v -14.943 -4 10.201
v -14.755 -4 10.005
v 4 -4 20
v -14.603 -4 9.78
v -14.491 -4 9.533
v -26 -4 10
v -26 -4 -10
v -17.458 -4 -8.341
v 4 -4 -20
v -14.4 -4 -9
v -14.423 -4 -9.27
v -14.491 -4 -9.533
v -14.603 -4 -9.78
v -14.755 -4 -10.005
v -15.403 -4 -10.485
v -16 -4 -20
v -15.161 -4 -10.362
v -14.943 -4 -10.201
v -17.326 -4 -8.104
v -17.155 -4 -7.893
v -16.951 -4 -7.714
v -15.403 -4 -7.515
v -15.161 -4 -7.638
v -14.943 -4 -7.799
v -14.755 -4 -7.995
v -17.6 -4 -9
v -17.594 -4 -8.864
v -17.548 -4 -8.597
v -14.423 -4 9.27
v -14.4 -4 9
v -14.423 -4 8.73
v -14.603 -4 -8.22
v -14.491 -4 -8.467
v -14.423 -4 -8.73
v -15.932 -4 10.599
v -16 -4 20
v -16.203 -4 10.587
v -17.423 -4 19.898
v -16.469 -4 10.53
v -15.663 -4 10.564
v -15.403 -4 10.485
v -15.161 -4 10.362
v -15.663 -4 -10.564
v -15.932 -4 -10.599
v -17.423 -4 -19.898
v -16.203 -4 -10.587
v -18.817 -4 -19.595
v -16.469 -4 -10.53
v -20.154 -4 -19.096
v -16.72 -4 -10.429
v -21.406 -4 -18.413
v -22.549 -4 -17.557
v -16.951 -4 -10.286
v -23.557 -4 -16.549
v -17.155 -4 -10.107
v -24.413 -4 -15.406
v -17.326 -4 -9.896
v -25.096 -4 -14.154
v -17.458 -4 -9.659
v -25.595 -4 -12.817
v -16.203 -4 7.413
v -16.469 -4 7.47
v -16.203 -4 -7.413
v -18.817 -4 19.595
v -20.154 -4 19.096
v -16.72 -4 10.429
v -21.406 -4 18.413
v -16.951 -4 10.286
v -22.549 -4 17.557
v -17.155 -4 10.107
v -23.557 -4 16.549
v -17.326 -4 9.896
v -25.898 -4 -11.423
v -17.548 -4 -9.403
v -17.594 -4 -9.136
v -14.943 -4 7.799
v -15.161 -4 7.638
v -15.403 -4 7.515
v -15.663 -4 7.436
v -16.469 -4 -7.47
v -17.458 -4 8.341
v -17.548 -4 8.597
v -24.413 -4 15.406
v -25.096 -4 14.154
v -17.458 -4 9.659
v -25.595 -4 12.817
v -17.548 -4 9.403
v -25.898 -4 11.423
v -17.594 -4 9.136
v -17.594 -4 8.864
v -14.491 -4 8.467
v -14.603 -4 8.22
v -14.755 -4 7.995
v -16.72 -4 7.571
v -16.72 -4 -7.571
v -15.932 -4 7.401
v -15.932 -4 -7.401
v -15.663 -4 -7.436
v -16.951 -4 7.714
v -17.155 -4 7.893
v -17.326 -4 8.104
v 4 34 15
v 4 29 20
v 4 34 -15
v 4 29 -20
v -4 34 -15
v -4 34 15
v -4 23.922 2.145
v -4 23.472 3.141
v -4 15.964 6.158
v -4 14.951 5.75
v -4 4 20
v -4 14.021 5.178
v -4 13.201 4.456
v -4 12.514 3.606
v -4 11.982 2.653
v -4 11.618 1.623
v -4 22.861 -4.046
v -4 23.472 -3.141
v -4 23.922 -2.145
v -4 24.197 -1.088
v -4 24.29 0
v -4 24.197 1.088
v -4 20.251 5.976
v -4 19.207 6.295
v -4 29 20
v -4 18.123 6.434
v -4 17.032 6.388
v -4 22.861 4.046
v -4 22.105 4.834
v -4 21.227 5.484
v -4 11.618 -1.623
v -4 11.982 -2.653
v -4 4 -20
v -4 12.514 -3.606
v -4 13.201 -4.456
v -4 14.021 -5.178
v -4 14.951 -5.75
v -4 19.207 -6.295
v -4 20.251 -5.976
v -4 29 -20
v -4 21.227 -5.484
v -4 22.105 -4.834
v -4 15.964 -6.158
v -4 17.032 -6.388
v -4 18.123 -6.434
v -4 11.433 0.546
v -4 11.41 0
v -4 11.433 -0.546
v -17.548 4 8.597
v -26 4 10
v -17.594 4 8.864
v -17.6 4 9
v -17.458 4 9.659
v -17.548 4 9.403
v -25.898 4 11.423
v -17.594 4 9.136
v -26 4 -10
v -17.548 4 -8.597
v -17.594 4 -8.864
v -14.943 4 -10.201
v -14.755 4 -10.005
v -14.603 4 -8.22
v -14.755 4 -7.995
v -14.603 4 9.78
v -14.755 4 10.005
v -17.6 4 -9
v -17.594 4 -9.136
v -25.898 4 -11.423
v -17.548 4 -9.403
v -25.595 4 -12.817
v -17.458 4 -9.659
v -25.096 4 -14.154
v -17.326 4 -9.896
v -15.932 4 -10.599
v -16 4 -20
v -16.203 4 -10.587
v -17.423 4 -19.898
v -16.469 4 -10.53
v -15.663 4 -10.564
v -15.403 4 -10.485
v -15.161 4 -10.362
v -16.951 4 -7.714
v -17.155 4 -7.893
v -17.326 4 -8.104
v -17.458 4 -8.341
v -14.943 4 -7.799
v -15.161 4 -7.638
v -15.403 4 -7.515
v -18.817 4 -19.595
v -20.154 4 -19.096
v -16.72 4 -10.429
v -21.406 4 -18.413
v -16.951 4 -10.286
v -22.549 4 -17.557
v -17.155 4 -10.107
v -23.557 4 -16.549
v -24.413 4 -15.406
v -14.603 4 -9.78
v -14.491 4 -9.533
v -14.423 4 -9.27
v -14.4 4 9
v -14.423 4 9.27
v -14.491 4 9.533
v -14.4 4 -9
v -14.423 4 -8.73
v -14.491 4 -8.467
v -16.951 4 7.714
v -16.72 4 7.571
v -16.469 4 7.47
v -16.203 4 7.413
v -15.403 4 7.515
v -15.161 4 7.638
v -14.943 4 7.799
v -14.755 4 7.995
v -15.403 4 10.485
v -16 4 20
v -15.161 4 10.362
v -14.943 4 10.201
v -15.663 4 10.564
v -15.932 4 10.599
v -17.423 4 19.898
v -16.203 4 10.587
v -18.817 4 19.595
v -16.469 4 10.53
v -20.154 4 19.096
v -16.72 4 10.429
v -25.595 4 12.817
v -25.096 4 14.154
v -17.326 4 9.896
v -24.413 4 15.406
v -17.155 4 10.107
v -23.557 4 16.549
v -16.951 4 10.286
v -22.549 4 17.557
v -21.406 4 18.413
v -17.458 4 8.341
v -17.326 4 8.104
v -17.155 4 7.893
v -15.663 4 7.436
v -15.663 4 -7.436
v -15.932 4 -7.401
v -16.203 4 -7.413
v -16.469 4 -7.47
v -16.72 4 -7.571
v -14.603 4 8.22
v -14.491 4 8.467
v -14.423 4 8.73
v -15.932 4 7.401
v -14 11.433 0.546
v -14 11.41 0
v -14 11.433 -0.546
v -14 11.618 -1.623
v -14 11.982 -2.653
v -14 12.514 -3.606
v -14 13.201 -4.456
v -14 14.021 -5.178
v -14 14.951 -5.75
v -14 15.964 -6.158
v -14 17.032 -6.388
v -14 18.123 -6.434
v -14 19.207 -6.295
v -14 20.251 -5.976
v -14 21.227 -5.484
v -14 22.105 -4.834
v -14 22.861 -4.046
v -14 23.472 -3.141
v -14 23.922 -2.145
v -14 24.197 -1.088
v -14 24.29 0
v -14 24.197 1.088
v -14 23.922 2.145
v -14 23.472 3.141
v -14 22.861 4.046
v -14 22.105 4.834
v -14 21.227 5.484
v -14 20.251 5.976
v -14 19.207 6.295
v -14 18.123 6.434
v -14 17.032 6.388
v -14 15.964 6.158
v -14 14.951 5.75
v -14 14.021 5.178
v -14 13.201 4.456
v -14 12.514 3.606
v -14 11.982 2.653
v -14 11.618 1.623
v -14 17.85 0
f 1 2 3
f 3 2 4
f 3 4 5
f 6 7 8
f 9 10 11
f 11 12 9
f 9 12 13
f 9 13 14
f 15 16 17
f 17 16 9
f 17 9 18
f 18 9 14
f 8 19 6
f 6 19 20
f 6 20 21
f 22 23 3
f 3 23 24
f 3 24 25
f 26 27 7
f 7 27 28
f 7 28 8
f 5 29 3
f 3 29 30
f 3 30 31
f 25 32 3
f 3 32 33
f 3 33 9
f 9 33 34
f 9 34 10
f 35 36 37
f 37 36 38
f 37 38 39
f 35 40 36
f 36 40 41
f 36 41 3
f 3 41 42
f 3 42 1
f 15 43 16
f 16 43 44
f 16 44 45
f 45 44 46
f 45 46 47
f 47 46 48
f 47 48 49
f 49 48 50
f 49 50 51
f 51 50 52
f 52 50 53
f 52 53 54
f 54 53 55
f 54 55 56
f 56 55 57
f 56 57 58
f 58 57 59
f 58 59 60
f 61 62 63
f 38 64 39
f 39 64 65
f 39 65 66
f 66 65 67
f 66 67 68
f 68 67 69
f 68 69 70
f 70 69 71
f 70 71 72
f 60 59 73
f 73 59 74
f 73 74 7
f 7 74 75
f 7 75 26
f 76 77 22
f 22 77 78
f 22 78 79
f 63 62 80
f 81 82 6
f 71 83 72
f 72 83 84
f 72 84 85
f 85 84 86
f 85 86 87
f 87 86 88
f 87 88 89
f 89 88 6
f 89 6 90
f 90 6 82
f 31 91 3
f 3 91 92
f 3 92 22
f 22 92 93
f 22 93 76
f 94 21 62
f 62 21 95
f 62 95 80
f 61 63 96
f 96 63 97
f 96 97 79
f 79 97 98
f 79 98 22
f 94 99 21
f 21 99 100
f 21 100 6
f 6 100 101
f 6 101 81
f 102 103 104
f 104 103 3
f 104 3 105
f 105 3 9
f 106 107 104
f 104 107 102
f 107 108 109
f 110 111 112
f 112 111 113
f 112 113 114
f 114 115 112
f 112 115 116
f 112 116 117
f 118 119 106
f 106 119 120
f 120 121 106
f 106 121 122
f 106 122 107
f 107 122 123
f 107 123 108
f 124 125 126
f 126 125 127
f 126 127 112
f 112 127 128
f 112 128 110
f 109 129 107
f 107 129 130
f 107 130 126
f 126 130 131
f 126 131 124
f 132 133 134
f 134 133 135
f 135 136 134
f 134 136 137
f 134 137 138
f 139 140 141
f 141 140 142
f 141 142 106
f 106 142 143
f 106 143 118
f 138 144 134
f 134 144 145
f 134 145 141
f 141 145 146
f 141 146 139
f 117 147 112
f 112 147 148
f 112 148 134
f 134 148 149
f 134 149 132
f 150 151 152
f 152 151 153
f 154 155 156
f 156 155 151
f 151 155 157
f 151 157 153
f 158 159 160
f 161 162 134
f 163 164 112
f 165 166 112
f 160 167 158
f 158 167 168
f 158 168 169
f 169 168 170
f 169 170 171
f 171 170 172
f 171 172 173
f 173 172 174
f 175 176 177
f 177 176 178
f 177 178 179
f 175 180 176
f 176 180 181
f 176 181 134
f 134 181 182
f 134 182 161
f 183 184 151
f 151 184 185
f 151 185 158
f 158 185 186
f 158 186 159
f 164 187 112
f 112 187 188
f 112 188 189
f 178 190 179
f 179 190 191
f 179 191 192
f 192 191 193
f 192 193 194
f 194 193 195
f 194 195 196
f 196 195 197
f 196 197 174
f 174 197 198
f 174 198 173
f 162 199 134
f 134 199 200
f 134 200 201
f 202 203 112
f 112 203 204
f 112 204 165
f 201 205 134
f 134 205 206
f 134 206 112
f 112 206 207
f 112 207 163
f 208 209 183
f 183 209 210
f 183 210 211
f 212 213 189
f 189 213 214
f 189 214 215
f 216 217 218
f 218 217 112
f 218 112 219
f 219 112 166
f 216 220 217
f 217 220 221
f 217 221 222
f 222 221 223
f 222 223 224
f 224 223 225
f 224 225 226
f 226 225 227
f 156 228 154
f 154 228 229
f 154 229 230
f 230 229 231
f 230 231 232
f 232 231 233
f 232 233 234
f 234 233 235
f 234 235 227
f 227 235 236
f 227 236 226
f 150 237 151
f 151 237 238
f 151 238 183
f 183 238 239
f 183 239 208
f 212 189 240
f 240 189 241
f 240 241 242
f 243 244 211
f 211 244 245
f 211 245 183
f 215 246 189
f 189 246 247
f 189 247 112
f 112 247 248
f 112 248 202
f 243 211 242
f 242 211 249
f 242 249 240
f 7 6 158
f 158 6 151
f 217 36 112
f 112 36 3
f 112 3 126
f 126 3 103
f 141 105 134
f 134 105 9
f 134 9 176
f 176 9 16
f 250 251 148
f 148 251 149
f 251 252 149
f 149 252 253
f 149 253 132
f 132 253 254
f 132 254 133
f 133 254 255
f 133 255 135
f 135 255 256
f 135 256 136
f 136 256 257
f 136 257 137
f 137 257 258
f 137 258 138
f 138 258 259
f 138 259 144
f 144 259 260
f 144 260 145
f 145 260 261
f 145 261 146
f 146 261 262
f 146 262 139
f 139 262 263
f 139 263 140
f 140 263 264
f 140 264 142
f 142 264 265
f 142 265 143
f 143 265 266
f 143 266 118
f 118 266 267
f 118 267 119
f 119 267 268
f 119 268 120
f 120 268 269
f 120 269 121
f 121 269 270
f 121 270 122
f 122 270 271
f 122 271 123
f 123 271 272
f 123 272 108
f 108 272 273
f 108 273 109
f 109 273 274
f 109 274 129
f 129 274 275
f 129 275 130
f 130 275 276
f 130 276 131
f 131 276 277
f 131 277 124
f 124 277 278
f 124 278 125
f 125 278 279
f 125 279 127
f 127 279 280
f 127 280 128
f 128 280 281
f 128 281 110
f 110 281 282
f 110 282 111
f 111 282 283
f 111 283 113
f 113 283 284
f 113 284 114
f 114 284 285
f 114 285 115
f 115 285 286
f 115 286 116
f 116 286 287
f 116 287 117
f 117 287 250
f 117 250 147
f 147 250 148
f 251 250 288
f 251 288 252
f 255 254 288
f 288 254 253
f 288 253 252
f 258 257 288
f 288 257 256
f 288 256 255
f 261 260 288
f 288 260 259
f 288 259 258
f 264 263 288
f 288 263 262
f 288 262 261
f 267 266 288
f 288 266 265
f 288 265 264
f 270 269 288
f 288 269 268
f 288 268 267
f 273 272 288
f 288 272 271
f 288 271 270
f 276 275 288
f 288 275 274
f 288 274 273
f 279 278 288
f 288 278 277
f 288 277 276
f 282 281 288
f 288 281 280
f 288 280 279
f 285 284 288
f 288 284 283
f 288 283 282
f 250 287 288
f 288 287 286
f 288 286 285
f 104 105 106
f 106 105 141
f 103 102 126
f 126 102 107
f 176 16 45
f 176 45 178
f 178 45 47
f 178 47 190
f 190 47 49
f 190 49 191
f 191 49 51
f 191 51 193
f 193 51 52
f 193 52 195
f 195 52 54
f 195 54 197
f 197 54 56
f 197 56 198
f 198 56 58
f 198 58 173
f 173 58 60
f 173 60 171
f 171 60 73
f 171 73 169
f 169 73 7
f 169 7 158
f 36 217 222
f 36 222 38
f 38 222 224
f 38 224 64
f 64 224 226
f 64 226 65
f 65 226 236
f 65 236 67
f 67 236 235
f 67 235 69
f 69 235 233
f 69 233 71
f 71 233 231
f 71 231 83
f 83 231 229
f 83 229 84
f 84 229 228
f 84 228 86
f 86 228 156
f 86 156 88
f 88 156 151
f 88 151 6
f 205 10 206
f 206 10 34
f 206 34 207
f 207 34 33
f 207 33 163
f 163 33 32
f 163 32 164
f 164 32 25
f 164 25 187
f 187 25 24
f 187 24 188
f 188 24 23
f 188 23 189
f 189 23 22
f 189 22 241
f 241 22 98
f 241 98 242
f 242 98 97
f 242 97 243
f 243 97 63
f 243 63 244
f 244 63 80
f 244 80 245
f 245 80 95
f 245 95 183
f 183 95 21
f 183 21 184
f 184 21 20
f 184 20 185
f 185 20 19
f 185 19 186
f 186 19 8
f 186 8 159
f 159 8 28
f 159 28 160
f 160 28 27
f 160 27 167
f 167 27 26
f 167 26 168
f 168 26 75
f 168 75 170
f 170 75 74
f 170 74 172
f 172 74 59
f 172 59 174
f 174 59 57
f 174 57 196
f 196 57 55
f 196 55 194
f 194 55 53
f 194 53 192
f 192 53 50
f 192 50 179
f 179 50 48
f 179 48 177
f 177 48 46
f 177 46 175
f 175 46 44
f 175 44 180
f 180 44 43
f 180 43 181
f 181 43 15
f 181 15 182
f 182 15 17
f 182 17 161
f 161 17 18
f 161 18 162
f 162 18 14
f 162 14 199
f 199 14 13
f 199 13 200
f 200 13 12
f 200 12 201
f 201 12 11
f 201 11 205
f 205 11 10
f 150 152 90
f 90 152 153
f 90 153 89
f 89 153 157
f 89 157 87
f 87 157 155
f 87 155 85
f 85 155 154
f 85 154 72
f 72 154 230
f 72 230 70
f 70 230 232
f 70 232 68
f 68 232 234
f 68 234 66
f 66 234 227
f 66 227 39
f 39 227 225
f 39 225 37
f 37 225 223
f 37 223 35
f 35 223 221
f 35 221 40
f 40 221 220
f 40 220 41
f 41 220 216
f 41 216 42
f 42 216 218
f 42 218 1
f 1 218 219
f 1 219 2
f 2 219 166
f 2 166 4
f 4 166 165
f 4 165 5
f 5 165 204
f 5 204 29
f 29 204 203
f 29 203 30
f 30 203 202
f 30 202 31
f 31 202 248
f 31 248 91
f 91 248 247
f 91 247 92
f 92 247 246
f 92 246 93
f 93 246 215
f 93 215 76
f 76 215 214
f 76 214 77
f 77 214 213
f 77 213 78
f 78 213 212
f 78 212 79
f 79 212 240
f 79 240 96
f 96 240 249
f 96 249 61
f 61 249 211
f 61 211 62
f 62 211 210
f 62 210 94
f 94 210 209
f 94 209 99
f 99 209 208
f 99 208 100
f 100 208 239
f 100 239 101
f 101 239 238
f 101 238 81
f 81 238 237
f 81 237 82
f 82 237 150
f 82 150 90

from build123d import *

# Parameters (mm, degrees)
CROQUIS1_W              = 4
CROQUIS1_H              = 30
CROQUIS1_H_2            = 8
SALIENTE_EXTRUIR1_DEPTH = 20
CROQUIS2_R              = 6.44
SALIENTE_EXTRUIR2_DEPTH = 10
CHAFL_N1_SIZE           = 5
REDONDEO1_R             = 10
CROQUIS3_R              = 1.6
CORTAR_EXTRUIR1_DEPTH   = 10


with BuildPart() as part:
    # Croquis1 → Saliente-Extruir1 (new, symmetric)
    with BuildSketch(Plane.XY):
        with Locations((-2, 19)):
            Rectangle(CROQUIS1_W, CROQUIS1_H)
        with Locations((2, 19)):
            Rectangle(CROQUIS1_W, CROQUIS1_H)
        Polygon((0, -4), (0, 4), (-4, 4), (-26, 4), (-26, -4), align=None)
        with Locations((2, 0)):
            Rectangle(CROQUIS1_W, CROQUIS1_H_2)
    extrude(amount=SALIENTE_EXTRUIR1_DEPTH, both=True)

    # Croquis2 → Saliente-Extruir2 (add)
    with BuildSketch(Plane.ZY.offset(4)):
        with Locations(Location((0, 17.85, 0), (0, 0, 270))):
            Circle(CROQUIS2_R)
    extrude(amount=SALIENTE_EXTRUIR2_DEPTH)

    # Chaflán1
    chafl_n1_edges = [part.edges().sort_by_distance(p)[0] for p in [
        (0, 34, 20),
        (0, 34, -20),
    ]]
    chamfer(chafl_n1_edges, length=CHAFL_N1_SIZE)

    # Redondeo1
    redondeo1_edges = [part.edges().sort_by_distance(p)[0] for p in [
        (-26, 0, 20),
        (-26, 0, -20),
    ]]
    fillet(redondeo1_edges, radius=REDONDEO1_R)

    # Croquis3 → Cortar-Extruir1 (cut)
    with BuildSketch(Plane.XZ.offset(4)):
        with Locations((-16, 9)):
            Circle(CROQUIS3_R)
        with Locations(Location((-16, -9, 0), (0, 0, 180))):
            Circle(CROQUIS3_R)
    extrude(amount=-CORTAR_EXTRUIR1_DEPTH, mode=Mode.SUBTRACT)


solid = part.part
